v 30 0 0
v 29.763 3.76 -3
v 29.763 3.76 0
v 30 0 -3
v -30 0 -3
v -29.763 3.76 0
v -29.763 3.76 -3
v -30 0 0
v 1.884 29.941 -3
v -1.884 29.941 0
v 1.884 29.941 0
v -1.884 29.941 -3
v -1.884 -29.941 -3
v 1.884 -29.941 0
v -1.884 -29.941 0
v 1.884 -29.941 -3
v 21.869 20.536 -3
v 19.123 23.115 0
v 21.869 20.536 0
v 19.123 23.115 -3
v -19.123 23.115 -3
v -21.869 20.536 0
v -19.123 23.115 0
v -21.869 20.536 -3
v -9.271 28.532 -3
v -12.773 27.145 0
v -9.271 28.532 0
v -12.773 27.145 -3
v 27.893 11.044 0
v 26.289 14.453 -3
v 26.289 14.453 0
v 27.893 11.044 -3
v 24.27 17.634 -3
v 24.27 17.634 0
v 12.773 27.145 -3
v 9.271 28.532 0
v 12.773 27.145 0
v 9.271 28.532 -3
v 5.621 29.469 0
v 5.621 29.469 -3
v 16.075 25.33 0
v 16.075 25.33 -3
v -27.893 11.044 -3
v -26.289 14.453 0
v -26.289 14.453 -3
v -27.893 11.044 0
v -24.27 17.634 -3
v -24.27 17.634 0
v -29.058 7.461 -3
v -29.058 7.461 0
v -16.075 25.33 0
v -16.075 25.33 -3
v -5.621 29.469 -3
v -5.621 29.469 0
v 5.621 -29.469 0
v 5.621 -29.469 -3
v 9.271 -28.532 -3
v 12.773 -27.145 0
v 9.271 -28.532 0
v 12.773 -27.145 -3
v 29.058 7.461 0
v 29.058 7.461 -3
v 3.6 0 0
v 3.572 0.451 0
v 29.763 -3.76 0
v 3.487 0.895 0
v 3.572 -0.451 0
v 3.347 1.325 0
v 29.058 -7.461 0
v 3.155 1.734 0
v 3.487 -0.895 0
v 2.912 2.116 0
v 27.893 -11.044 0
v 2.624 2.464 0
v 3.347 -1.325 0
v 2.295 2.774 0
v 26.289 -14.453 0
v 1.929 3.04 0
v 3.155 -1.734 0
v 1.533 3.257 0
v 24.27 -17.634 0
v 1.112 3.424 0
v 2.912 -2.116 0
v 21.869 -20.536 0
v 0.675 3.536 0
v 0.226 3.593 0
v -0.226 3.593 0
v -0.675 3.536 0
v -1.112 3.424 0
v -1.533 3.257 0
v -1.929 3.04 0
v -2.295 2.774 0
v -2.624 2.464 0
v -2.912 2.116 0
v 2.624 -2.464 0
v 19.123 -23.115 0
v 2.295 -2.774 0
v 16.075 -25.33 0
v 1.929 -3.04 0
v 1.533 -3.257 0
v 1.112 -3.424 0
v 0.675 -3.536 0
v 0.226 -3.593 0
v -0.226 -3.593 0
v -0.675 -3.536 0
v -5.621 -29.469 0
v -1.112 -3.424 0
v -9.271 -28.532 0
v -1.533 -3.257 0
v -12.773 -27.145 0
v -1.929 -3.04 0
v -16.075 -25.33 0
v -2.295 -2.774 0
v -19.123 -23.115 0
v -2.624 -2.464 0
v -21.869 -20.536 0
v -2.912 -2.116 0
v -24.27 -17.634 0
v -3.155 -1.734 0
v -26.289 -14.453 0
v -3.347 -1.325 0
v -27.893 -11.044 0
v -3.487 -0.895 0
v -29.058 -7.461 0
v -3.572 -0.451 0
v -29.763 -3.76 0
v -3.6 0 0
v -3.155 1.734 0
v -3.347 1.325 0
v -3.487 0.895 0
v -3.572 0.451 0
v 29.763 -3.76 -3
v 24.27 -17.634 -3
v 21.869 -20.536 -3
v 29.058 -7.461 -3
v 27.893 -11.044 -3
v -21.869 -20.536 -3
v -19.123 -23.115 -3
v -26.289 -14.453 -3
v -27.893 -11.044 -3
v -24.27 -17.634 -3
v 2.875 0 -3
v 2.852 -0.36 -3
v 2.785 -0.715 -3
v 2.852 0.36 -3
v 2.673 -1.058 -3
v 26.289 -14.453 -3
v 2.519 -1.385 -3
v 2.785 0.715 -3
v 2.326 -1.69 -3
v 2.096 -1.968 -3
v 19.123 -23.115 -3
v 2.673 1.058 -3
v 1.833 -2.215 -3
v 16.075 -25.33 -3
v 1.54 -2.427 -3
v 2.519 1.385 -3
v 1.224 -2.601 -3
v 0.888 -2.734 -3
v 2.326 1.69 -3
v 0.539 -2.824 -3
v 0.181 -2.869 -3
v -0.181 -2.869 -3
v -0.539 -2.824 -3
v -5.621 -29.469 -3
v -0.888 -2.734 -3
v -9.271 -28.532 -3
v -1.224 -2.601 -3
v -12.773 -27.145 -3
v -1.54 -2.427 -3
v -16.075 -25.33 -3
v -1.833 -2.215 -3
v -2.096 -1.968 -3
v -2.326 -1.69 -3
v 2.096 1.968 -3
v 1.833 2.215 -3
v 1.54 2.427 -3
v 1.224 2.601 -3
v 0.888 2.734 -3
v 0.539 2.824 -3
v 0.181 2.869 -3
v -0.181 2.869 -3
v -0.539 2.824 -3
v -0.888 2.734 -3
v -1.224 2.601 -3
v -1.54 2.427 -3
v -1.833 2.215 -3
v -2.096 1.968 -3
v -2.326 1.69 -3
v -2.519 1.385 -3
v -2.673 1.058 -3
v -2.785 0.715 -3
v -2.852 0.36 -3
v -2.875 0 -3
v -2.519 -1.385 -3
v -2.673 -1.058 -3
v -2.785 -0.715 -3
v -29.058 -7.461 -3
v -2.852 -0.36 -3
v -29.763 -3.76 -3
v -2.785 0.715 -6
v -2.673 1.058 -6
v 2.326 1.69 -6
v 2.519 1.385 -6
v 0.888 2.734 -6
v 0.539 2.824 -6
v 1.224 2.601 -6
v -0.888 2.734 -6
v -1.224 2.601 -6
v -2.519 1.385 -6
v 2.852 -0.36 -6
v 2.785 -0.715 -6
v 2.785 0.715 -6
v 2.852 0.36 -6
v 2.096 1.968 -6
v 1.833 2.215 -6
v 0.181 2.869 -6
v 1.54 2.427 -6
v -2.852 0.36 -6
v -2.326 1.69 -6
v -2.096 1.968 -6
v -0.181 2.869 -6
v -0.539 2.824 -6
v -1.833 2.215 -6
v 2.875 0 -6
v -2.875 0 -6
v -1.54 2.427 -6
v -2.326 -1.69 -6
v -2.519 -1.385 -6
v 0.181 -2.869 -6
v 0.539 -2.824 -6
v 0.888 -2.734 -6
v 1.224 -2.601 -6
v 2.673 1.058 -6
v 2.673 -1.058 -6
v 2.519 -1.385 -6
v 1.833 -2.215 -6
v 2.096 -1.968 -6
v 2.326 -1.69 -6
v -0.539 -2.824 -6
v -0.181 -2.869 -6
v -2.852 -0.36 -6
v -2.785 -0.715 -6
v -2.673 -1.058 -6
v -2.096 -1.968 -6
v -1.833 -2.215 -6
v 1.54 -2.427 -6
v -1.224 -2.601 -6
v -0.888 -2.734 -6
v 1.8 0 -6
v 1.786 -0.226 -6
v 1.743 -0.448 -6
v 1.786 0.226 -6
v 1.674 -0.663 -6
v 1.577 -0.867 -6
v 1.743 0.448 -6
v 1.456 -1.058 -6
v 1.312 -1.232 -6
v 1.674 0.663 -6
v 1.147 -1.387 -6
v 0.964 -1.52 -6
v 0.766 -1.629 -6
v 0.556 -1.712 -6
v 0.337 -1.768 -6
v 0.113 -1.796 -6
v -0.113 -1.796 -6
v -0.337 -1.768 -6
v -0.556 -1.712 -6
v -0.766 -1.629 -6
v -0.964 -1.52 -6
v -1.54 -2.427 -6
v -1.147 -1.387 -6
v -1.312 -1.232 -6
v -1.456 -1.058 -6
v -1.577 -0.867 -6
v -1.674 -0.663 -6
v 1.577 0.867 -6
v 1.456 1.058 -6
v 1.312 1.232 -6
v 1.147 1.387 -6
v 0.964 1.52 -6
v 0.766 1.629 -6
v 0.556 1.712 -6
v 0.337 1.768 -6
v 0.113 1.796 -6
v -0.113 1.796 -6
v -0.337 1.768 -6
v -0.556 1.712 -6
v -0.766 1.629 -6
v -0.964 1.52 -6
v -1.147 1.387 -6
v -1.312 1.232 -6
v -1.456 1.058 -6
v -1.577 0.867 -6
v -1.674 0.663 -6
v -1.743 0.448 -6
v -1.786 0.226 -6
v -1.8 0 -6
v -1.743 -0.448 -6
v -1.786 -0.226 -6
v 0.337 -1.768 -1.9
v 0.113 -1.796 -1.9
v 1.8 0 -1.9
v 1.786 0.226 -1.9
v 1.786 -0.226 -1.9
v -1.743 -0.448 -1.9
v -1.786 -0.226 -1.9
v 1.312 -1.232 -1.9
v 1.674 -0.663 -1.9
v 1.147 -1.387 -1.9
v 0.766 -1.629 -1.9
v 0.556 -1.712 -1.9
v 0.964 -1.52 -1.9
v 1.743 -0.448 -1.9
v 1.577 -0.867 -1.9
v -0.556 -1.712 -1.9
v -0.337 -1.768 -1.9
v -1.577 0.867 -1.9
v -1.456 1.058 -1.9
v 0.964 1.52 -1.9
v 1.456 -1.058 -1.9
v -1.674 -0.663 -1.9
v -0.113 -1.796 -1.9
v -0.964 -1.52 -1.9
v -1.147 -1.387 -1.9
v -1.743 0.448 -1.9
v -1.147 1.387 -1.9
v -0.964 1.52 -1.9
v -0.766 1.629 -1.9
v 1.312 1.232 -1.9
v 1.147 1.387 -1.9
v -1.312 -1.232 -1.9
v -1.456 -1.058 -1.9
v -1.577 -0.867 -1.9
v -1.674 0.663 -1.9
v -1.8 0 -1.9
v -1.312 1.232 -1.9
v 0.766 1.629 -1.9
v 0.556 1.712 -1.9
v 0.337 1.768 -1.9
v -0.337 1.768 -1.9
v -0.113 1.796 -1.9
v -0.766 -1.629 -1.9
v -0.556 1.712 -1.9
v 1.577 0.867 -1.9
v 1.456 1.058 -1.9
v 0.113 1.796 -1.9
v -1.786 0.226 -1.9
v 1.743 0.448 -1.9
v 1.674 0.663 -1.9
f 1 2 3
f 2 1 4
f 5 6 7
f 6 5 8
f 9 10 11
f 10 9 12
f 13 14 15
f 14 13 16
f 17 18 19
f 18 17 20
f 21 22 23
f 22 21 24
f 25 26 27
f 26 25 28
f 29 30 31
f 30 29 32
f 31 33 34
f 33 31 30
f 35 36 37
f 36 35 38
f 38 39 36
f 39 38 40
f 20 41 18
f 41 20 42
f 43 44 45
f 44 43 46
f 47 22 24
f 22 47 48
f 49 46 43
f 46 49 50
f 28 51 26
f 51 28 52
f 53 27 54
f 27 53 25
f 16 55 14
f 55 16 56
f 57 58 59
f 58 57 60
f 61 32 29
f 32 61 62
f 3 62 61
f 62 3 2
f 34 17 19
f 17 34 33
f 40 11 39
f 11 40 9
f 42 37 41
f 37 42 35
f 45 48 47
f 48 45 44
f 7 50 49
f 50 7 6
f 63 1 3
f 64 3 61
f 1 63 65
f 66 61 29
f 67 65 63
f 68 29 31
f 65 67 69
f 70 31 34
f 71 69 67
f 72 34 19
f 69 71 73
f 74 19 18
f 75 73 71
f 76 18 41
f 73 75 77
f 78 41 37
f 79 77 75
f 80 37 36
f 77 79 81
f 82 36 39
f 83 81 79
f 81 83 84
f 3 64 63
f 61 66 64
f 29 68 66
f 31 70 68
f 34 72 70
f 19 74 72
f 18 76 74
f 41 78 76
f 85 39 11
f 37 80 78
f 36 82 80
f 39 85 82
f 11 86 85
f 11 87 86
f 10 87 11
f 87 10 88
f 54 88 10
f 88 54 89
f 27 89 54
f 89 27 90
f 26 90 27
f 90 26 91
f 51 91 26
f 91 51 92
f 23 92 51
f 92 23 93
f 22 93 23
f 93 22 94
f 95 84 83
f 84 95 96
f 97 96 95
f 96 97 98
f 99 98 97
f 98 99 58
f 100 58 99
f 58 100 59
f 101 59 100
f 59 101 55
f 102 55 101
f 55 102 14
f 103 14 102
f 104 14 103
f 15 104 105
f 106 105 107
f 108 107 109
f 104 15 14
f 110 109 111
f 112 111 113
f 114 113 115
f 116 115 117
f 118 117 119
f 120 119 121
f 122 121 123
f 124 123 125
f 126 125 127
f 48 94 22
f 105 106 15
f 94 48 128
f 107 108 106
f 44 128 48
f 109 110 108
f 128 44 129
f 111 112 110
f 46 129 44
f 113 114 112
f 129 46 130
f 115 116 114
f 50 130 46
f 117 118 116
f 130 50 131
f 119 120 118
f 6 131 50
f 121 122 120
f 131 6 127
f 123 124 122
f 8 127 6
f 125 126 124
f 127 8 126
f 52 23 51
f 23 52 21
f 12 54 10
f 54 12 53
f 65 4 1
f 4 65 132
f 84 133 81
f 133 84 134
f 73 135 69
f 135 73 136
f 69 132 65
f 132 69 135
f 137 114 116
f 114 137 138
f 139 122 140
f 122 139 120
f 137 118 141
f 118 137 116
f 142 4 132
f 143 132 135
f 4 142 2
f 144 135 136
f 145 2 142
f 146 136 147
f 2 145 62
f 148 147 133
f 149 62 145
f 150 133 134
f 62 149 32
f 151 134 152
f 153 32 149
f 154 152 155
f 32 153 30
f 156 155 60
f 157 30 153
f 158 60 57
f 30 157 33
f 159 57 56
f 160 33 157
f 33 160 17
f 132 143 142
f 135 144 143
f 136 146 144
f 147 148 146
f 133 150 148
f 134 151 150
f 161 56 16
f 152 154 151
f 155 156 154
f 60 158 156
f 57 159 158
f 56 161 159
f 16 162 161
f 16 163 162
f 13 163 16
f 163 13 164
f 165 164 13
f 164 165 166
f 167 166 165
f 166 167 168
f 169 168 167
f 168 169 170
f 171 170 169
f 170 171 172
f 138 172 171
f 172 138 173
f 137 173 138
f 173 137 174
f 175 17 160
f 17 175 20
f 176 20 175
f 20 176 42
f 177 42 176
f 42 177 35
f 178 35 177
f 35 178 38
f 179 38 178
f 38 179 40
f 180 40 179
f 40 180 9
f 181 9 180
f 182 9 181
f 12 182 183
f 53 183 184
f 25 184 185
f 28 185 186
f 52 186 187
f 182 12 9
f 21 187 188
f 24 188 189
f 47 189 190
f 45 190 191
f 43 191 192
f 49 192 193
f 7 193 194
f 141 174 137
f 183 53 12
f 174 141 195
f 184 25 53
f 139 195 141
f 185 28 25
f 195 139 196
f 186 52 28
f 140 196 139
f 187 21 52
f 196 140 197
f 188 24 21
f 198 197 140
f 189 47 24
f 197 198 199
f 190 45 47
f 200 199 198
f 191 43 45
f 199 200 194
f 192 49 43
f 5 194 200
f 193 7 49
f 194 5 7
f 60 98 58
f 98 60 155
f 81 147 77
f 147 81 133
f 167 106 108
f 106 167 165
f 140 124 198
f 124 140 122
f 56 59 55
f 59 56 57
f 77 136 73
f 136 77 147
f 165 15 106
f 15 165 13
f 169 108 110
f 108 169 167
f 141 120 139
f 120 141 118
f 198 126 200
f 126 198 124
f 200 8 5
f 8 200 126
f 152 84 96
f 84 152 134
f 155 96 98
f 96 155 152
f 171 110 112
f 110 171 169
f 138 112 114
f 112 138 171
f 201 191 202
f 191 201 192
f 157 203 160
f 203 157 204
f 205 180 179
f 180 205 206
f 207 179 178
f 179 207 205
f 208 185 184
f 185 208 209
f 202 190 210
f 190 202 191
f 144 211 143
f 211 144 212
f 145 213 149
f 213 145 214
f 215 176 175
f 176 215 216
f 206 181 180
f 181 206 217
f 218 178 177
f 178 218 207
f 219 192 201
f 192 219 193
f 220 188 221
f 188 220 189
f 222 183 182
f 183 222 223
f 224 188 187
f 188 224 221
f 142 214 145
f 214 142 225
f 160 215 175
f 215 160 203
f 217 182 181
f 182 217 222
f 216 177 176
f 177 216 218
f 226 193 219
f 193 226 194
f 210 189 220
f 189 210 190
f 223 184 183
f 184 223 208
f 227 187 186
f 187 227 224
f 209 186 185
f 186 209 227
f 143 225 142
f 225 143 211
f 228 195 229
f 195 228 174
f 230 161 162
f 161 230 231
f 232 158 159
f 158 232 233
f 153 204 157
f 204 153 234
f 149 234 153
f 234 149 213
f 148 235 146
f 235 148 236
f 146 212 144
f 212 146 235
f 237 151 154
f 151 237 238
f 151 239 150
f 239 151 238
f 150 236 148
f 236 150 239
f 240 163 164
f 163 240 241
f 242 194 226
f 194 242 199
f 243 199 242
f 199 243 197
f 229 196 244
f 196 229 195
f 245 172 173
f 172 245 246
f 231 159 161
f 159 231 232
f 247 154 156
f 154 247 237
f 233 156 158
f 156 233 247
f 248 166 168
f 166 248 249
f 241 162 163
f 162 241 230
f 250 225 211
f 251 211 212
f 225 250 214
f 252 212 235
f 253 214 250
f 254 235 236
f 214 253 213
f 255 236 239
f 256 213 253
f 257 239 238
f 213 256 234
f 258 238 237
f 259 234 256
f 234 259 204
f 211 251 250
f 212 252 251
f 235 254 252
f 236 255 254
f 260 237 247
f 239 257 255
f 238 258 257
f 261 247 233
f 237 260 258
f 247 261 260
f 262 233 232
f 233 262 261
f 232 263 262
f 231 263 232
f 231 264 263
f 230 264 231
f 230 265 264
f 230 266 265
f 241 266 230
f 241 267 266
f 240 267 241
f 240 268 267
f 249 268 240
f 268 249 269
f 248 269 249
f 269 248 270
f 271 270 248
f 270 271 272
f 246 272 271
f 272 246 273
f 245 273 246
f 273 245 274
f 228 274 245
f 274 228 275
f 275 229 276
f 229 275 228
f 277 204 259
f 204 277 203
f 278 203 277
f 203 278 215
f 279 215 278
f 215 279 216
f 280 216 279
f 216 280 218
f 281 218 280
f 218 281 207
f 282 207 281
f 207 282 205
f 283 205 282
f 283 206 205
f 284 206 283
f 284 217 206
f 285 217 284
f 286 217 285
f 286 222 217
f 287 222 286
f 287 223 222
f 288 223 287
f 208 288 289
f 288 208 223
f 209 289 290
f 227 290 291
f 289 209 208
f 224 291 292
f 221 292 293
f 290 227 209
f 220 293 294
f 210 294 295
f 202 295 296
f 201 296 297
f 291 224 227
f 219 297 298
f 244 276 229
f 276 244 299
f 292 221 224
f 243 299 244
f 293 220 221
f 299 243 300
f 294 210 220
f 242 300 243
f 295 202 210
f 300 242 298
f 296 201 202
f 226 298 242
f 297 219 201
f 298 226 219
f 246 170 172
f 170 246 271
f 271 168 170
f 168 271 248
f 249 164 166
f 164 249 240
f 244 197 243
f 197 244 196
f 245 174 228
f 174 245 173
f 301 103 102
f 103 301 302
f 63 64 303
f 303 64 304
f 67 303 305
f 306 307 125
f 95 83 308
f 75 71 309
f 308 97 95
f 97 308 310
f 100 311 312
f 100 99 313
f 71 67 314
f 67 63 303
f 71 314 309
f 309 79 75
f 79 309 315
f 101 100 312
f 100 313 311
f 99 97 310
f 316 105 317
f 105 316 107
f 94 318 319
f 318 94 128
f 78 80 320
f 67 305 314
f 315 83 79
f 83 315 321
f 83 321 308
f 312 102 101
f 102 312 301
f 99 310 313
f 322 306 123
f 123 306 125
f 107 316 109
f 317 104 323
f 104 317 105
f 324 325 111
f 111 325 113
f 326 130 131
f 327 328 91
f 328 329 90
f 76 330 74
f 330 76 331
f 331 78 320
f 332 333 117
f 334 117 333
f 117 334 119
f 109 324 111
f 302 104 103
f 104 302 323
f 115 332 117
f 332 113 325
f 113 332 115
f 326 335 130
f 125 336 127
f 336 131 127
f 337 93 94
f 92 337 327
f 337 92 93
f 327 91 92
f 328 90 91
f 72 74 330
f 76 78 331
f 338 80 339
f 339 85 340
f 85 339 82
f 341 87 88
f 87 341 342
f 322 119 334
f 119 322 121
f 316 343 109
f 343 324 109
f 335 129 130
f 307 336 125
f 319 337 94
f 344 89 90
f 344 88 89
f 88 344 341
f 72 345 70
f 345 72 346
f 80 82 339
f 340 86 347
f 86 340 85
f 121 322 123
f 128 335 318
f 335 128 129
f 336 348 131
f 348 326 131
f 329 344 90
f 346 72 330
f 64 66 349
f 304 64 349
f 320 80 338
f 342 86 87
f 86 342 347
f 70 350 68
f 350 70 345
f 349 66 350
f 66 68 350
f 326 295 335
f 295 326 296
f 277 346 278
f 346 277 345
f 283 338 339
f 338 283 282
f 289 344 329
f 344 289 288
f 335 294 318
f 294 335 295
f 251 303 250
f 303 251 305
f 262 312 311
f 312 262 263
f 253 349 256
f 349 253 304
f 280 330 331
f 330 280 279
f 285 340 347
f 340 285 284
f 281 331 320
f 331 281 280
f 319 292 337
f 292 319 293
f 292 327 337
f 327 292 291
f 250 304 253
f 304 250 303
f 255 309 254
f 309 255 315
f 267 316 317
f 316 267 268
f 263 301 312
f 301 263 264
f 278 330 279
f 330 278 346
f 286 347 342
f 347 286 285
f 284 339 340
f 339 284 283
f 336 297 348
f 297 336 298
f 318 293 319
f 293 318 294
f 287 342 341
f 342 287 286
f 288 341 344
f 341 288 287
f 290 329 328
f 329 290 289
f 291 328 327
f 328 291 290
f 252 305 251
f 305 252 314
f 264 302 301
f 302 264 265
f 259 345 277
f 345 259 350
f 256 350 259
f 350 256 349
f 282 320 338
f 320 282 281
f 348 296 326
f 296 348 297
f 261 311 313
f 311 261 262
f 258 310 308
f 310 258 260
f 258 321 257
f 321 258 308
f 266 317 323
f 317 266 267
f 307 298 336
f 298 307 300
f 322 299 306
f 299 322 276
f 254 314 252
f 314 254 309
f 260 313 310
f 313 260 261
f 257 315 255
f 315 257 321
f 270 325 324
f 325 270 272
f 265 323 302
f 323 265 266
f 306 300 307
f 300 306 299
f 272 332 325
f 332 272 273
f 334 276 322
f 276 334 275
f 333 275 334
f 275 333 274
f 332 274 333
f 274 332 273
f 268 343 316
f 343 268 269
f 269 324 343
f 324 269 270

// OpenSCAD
$fn = 50;


difference() {
	union() {
		translate(v = [0, 0, -3.0000000000]) {
			cylinder(h = 3, r = 30.0000000000);
		}
		translate(v = [0, 0, -6.0000000000]) {
			cylinder(h = 6, r = 2.8750000000);
		}
	}
	union() {
		translate(v = [0, 0, 0]) {
			rotate(a = [0, 0, 0]) {
				difference() {
					union() {
						translate(v = [0, 0, -6.0000000000]) {
							cylinder(h = 6, r = 1.5000000000);
						}
						translate(v = [0, 0, -1.9000000000]) {
							cylinder(h = 1.9000000000, r1 = 1.8000000000, r2 = 3.6000000000);
						}
						translate(v = [0, 0, -6.0000000000]) {
							cylinder(h = 6, r = 1.8000000000);
						}
						translate(v = [0, 0, -6.0000000000]) {
							cylinder(h = 6, r = 1.5000000000);
						}
					}
					union();
				}
			}
		}
	}
}
